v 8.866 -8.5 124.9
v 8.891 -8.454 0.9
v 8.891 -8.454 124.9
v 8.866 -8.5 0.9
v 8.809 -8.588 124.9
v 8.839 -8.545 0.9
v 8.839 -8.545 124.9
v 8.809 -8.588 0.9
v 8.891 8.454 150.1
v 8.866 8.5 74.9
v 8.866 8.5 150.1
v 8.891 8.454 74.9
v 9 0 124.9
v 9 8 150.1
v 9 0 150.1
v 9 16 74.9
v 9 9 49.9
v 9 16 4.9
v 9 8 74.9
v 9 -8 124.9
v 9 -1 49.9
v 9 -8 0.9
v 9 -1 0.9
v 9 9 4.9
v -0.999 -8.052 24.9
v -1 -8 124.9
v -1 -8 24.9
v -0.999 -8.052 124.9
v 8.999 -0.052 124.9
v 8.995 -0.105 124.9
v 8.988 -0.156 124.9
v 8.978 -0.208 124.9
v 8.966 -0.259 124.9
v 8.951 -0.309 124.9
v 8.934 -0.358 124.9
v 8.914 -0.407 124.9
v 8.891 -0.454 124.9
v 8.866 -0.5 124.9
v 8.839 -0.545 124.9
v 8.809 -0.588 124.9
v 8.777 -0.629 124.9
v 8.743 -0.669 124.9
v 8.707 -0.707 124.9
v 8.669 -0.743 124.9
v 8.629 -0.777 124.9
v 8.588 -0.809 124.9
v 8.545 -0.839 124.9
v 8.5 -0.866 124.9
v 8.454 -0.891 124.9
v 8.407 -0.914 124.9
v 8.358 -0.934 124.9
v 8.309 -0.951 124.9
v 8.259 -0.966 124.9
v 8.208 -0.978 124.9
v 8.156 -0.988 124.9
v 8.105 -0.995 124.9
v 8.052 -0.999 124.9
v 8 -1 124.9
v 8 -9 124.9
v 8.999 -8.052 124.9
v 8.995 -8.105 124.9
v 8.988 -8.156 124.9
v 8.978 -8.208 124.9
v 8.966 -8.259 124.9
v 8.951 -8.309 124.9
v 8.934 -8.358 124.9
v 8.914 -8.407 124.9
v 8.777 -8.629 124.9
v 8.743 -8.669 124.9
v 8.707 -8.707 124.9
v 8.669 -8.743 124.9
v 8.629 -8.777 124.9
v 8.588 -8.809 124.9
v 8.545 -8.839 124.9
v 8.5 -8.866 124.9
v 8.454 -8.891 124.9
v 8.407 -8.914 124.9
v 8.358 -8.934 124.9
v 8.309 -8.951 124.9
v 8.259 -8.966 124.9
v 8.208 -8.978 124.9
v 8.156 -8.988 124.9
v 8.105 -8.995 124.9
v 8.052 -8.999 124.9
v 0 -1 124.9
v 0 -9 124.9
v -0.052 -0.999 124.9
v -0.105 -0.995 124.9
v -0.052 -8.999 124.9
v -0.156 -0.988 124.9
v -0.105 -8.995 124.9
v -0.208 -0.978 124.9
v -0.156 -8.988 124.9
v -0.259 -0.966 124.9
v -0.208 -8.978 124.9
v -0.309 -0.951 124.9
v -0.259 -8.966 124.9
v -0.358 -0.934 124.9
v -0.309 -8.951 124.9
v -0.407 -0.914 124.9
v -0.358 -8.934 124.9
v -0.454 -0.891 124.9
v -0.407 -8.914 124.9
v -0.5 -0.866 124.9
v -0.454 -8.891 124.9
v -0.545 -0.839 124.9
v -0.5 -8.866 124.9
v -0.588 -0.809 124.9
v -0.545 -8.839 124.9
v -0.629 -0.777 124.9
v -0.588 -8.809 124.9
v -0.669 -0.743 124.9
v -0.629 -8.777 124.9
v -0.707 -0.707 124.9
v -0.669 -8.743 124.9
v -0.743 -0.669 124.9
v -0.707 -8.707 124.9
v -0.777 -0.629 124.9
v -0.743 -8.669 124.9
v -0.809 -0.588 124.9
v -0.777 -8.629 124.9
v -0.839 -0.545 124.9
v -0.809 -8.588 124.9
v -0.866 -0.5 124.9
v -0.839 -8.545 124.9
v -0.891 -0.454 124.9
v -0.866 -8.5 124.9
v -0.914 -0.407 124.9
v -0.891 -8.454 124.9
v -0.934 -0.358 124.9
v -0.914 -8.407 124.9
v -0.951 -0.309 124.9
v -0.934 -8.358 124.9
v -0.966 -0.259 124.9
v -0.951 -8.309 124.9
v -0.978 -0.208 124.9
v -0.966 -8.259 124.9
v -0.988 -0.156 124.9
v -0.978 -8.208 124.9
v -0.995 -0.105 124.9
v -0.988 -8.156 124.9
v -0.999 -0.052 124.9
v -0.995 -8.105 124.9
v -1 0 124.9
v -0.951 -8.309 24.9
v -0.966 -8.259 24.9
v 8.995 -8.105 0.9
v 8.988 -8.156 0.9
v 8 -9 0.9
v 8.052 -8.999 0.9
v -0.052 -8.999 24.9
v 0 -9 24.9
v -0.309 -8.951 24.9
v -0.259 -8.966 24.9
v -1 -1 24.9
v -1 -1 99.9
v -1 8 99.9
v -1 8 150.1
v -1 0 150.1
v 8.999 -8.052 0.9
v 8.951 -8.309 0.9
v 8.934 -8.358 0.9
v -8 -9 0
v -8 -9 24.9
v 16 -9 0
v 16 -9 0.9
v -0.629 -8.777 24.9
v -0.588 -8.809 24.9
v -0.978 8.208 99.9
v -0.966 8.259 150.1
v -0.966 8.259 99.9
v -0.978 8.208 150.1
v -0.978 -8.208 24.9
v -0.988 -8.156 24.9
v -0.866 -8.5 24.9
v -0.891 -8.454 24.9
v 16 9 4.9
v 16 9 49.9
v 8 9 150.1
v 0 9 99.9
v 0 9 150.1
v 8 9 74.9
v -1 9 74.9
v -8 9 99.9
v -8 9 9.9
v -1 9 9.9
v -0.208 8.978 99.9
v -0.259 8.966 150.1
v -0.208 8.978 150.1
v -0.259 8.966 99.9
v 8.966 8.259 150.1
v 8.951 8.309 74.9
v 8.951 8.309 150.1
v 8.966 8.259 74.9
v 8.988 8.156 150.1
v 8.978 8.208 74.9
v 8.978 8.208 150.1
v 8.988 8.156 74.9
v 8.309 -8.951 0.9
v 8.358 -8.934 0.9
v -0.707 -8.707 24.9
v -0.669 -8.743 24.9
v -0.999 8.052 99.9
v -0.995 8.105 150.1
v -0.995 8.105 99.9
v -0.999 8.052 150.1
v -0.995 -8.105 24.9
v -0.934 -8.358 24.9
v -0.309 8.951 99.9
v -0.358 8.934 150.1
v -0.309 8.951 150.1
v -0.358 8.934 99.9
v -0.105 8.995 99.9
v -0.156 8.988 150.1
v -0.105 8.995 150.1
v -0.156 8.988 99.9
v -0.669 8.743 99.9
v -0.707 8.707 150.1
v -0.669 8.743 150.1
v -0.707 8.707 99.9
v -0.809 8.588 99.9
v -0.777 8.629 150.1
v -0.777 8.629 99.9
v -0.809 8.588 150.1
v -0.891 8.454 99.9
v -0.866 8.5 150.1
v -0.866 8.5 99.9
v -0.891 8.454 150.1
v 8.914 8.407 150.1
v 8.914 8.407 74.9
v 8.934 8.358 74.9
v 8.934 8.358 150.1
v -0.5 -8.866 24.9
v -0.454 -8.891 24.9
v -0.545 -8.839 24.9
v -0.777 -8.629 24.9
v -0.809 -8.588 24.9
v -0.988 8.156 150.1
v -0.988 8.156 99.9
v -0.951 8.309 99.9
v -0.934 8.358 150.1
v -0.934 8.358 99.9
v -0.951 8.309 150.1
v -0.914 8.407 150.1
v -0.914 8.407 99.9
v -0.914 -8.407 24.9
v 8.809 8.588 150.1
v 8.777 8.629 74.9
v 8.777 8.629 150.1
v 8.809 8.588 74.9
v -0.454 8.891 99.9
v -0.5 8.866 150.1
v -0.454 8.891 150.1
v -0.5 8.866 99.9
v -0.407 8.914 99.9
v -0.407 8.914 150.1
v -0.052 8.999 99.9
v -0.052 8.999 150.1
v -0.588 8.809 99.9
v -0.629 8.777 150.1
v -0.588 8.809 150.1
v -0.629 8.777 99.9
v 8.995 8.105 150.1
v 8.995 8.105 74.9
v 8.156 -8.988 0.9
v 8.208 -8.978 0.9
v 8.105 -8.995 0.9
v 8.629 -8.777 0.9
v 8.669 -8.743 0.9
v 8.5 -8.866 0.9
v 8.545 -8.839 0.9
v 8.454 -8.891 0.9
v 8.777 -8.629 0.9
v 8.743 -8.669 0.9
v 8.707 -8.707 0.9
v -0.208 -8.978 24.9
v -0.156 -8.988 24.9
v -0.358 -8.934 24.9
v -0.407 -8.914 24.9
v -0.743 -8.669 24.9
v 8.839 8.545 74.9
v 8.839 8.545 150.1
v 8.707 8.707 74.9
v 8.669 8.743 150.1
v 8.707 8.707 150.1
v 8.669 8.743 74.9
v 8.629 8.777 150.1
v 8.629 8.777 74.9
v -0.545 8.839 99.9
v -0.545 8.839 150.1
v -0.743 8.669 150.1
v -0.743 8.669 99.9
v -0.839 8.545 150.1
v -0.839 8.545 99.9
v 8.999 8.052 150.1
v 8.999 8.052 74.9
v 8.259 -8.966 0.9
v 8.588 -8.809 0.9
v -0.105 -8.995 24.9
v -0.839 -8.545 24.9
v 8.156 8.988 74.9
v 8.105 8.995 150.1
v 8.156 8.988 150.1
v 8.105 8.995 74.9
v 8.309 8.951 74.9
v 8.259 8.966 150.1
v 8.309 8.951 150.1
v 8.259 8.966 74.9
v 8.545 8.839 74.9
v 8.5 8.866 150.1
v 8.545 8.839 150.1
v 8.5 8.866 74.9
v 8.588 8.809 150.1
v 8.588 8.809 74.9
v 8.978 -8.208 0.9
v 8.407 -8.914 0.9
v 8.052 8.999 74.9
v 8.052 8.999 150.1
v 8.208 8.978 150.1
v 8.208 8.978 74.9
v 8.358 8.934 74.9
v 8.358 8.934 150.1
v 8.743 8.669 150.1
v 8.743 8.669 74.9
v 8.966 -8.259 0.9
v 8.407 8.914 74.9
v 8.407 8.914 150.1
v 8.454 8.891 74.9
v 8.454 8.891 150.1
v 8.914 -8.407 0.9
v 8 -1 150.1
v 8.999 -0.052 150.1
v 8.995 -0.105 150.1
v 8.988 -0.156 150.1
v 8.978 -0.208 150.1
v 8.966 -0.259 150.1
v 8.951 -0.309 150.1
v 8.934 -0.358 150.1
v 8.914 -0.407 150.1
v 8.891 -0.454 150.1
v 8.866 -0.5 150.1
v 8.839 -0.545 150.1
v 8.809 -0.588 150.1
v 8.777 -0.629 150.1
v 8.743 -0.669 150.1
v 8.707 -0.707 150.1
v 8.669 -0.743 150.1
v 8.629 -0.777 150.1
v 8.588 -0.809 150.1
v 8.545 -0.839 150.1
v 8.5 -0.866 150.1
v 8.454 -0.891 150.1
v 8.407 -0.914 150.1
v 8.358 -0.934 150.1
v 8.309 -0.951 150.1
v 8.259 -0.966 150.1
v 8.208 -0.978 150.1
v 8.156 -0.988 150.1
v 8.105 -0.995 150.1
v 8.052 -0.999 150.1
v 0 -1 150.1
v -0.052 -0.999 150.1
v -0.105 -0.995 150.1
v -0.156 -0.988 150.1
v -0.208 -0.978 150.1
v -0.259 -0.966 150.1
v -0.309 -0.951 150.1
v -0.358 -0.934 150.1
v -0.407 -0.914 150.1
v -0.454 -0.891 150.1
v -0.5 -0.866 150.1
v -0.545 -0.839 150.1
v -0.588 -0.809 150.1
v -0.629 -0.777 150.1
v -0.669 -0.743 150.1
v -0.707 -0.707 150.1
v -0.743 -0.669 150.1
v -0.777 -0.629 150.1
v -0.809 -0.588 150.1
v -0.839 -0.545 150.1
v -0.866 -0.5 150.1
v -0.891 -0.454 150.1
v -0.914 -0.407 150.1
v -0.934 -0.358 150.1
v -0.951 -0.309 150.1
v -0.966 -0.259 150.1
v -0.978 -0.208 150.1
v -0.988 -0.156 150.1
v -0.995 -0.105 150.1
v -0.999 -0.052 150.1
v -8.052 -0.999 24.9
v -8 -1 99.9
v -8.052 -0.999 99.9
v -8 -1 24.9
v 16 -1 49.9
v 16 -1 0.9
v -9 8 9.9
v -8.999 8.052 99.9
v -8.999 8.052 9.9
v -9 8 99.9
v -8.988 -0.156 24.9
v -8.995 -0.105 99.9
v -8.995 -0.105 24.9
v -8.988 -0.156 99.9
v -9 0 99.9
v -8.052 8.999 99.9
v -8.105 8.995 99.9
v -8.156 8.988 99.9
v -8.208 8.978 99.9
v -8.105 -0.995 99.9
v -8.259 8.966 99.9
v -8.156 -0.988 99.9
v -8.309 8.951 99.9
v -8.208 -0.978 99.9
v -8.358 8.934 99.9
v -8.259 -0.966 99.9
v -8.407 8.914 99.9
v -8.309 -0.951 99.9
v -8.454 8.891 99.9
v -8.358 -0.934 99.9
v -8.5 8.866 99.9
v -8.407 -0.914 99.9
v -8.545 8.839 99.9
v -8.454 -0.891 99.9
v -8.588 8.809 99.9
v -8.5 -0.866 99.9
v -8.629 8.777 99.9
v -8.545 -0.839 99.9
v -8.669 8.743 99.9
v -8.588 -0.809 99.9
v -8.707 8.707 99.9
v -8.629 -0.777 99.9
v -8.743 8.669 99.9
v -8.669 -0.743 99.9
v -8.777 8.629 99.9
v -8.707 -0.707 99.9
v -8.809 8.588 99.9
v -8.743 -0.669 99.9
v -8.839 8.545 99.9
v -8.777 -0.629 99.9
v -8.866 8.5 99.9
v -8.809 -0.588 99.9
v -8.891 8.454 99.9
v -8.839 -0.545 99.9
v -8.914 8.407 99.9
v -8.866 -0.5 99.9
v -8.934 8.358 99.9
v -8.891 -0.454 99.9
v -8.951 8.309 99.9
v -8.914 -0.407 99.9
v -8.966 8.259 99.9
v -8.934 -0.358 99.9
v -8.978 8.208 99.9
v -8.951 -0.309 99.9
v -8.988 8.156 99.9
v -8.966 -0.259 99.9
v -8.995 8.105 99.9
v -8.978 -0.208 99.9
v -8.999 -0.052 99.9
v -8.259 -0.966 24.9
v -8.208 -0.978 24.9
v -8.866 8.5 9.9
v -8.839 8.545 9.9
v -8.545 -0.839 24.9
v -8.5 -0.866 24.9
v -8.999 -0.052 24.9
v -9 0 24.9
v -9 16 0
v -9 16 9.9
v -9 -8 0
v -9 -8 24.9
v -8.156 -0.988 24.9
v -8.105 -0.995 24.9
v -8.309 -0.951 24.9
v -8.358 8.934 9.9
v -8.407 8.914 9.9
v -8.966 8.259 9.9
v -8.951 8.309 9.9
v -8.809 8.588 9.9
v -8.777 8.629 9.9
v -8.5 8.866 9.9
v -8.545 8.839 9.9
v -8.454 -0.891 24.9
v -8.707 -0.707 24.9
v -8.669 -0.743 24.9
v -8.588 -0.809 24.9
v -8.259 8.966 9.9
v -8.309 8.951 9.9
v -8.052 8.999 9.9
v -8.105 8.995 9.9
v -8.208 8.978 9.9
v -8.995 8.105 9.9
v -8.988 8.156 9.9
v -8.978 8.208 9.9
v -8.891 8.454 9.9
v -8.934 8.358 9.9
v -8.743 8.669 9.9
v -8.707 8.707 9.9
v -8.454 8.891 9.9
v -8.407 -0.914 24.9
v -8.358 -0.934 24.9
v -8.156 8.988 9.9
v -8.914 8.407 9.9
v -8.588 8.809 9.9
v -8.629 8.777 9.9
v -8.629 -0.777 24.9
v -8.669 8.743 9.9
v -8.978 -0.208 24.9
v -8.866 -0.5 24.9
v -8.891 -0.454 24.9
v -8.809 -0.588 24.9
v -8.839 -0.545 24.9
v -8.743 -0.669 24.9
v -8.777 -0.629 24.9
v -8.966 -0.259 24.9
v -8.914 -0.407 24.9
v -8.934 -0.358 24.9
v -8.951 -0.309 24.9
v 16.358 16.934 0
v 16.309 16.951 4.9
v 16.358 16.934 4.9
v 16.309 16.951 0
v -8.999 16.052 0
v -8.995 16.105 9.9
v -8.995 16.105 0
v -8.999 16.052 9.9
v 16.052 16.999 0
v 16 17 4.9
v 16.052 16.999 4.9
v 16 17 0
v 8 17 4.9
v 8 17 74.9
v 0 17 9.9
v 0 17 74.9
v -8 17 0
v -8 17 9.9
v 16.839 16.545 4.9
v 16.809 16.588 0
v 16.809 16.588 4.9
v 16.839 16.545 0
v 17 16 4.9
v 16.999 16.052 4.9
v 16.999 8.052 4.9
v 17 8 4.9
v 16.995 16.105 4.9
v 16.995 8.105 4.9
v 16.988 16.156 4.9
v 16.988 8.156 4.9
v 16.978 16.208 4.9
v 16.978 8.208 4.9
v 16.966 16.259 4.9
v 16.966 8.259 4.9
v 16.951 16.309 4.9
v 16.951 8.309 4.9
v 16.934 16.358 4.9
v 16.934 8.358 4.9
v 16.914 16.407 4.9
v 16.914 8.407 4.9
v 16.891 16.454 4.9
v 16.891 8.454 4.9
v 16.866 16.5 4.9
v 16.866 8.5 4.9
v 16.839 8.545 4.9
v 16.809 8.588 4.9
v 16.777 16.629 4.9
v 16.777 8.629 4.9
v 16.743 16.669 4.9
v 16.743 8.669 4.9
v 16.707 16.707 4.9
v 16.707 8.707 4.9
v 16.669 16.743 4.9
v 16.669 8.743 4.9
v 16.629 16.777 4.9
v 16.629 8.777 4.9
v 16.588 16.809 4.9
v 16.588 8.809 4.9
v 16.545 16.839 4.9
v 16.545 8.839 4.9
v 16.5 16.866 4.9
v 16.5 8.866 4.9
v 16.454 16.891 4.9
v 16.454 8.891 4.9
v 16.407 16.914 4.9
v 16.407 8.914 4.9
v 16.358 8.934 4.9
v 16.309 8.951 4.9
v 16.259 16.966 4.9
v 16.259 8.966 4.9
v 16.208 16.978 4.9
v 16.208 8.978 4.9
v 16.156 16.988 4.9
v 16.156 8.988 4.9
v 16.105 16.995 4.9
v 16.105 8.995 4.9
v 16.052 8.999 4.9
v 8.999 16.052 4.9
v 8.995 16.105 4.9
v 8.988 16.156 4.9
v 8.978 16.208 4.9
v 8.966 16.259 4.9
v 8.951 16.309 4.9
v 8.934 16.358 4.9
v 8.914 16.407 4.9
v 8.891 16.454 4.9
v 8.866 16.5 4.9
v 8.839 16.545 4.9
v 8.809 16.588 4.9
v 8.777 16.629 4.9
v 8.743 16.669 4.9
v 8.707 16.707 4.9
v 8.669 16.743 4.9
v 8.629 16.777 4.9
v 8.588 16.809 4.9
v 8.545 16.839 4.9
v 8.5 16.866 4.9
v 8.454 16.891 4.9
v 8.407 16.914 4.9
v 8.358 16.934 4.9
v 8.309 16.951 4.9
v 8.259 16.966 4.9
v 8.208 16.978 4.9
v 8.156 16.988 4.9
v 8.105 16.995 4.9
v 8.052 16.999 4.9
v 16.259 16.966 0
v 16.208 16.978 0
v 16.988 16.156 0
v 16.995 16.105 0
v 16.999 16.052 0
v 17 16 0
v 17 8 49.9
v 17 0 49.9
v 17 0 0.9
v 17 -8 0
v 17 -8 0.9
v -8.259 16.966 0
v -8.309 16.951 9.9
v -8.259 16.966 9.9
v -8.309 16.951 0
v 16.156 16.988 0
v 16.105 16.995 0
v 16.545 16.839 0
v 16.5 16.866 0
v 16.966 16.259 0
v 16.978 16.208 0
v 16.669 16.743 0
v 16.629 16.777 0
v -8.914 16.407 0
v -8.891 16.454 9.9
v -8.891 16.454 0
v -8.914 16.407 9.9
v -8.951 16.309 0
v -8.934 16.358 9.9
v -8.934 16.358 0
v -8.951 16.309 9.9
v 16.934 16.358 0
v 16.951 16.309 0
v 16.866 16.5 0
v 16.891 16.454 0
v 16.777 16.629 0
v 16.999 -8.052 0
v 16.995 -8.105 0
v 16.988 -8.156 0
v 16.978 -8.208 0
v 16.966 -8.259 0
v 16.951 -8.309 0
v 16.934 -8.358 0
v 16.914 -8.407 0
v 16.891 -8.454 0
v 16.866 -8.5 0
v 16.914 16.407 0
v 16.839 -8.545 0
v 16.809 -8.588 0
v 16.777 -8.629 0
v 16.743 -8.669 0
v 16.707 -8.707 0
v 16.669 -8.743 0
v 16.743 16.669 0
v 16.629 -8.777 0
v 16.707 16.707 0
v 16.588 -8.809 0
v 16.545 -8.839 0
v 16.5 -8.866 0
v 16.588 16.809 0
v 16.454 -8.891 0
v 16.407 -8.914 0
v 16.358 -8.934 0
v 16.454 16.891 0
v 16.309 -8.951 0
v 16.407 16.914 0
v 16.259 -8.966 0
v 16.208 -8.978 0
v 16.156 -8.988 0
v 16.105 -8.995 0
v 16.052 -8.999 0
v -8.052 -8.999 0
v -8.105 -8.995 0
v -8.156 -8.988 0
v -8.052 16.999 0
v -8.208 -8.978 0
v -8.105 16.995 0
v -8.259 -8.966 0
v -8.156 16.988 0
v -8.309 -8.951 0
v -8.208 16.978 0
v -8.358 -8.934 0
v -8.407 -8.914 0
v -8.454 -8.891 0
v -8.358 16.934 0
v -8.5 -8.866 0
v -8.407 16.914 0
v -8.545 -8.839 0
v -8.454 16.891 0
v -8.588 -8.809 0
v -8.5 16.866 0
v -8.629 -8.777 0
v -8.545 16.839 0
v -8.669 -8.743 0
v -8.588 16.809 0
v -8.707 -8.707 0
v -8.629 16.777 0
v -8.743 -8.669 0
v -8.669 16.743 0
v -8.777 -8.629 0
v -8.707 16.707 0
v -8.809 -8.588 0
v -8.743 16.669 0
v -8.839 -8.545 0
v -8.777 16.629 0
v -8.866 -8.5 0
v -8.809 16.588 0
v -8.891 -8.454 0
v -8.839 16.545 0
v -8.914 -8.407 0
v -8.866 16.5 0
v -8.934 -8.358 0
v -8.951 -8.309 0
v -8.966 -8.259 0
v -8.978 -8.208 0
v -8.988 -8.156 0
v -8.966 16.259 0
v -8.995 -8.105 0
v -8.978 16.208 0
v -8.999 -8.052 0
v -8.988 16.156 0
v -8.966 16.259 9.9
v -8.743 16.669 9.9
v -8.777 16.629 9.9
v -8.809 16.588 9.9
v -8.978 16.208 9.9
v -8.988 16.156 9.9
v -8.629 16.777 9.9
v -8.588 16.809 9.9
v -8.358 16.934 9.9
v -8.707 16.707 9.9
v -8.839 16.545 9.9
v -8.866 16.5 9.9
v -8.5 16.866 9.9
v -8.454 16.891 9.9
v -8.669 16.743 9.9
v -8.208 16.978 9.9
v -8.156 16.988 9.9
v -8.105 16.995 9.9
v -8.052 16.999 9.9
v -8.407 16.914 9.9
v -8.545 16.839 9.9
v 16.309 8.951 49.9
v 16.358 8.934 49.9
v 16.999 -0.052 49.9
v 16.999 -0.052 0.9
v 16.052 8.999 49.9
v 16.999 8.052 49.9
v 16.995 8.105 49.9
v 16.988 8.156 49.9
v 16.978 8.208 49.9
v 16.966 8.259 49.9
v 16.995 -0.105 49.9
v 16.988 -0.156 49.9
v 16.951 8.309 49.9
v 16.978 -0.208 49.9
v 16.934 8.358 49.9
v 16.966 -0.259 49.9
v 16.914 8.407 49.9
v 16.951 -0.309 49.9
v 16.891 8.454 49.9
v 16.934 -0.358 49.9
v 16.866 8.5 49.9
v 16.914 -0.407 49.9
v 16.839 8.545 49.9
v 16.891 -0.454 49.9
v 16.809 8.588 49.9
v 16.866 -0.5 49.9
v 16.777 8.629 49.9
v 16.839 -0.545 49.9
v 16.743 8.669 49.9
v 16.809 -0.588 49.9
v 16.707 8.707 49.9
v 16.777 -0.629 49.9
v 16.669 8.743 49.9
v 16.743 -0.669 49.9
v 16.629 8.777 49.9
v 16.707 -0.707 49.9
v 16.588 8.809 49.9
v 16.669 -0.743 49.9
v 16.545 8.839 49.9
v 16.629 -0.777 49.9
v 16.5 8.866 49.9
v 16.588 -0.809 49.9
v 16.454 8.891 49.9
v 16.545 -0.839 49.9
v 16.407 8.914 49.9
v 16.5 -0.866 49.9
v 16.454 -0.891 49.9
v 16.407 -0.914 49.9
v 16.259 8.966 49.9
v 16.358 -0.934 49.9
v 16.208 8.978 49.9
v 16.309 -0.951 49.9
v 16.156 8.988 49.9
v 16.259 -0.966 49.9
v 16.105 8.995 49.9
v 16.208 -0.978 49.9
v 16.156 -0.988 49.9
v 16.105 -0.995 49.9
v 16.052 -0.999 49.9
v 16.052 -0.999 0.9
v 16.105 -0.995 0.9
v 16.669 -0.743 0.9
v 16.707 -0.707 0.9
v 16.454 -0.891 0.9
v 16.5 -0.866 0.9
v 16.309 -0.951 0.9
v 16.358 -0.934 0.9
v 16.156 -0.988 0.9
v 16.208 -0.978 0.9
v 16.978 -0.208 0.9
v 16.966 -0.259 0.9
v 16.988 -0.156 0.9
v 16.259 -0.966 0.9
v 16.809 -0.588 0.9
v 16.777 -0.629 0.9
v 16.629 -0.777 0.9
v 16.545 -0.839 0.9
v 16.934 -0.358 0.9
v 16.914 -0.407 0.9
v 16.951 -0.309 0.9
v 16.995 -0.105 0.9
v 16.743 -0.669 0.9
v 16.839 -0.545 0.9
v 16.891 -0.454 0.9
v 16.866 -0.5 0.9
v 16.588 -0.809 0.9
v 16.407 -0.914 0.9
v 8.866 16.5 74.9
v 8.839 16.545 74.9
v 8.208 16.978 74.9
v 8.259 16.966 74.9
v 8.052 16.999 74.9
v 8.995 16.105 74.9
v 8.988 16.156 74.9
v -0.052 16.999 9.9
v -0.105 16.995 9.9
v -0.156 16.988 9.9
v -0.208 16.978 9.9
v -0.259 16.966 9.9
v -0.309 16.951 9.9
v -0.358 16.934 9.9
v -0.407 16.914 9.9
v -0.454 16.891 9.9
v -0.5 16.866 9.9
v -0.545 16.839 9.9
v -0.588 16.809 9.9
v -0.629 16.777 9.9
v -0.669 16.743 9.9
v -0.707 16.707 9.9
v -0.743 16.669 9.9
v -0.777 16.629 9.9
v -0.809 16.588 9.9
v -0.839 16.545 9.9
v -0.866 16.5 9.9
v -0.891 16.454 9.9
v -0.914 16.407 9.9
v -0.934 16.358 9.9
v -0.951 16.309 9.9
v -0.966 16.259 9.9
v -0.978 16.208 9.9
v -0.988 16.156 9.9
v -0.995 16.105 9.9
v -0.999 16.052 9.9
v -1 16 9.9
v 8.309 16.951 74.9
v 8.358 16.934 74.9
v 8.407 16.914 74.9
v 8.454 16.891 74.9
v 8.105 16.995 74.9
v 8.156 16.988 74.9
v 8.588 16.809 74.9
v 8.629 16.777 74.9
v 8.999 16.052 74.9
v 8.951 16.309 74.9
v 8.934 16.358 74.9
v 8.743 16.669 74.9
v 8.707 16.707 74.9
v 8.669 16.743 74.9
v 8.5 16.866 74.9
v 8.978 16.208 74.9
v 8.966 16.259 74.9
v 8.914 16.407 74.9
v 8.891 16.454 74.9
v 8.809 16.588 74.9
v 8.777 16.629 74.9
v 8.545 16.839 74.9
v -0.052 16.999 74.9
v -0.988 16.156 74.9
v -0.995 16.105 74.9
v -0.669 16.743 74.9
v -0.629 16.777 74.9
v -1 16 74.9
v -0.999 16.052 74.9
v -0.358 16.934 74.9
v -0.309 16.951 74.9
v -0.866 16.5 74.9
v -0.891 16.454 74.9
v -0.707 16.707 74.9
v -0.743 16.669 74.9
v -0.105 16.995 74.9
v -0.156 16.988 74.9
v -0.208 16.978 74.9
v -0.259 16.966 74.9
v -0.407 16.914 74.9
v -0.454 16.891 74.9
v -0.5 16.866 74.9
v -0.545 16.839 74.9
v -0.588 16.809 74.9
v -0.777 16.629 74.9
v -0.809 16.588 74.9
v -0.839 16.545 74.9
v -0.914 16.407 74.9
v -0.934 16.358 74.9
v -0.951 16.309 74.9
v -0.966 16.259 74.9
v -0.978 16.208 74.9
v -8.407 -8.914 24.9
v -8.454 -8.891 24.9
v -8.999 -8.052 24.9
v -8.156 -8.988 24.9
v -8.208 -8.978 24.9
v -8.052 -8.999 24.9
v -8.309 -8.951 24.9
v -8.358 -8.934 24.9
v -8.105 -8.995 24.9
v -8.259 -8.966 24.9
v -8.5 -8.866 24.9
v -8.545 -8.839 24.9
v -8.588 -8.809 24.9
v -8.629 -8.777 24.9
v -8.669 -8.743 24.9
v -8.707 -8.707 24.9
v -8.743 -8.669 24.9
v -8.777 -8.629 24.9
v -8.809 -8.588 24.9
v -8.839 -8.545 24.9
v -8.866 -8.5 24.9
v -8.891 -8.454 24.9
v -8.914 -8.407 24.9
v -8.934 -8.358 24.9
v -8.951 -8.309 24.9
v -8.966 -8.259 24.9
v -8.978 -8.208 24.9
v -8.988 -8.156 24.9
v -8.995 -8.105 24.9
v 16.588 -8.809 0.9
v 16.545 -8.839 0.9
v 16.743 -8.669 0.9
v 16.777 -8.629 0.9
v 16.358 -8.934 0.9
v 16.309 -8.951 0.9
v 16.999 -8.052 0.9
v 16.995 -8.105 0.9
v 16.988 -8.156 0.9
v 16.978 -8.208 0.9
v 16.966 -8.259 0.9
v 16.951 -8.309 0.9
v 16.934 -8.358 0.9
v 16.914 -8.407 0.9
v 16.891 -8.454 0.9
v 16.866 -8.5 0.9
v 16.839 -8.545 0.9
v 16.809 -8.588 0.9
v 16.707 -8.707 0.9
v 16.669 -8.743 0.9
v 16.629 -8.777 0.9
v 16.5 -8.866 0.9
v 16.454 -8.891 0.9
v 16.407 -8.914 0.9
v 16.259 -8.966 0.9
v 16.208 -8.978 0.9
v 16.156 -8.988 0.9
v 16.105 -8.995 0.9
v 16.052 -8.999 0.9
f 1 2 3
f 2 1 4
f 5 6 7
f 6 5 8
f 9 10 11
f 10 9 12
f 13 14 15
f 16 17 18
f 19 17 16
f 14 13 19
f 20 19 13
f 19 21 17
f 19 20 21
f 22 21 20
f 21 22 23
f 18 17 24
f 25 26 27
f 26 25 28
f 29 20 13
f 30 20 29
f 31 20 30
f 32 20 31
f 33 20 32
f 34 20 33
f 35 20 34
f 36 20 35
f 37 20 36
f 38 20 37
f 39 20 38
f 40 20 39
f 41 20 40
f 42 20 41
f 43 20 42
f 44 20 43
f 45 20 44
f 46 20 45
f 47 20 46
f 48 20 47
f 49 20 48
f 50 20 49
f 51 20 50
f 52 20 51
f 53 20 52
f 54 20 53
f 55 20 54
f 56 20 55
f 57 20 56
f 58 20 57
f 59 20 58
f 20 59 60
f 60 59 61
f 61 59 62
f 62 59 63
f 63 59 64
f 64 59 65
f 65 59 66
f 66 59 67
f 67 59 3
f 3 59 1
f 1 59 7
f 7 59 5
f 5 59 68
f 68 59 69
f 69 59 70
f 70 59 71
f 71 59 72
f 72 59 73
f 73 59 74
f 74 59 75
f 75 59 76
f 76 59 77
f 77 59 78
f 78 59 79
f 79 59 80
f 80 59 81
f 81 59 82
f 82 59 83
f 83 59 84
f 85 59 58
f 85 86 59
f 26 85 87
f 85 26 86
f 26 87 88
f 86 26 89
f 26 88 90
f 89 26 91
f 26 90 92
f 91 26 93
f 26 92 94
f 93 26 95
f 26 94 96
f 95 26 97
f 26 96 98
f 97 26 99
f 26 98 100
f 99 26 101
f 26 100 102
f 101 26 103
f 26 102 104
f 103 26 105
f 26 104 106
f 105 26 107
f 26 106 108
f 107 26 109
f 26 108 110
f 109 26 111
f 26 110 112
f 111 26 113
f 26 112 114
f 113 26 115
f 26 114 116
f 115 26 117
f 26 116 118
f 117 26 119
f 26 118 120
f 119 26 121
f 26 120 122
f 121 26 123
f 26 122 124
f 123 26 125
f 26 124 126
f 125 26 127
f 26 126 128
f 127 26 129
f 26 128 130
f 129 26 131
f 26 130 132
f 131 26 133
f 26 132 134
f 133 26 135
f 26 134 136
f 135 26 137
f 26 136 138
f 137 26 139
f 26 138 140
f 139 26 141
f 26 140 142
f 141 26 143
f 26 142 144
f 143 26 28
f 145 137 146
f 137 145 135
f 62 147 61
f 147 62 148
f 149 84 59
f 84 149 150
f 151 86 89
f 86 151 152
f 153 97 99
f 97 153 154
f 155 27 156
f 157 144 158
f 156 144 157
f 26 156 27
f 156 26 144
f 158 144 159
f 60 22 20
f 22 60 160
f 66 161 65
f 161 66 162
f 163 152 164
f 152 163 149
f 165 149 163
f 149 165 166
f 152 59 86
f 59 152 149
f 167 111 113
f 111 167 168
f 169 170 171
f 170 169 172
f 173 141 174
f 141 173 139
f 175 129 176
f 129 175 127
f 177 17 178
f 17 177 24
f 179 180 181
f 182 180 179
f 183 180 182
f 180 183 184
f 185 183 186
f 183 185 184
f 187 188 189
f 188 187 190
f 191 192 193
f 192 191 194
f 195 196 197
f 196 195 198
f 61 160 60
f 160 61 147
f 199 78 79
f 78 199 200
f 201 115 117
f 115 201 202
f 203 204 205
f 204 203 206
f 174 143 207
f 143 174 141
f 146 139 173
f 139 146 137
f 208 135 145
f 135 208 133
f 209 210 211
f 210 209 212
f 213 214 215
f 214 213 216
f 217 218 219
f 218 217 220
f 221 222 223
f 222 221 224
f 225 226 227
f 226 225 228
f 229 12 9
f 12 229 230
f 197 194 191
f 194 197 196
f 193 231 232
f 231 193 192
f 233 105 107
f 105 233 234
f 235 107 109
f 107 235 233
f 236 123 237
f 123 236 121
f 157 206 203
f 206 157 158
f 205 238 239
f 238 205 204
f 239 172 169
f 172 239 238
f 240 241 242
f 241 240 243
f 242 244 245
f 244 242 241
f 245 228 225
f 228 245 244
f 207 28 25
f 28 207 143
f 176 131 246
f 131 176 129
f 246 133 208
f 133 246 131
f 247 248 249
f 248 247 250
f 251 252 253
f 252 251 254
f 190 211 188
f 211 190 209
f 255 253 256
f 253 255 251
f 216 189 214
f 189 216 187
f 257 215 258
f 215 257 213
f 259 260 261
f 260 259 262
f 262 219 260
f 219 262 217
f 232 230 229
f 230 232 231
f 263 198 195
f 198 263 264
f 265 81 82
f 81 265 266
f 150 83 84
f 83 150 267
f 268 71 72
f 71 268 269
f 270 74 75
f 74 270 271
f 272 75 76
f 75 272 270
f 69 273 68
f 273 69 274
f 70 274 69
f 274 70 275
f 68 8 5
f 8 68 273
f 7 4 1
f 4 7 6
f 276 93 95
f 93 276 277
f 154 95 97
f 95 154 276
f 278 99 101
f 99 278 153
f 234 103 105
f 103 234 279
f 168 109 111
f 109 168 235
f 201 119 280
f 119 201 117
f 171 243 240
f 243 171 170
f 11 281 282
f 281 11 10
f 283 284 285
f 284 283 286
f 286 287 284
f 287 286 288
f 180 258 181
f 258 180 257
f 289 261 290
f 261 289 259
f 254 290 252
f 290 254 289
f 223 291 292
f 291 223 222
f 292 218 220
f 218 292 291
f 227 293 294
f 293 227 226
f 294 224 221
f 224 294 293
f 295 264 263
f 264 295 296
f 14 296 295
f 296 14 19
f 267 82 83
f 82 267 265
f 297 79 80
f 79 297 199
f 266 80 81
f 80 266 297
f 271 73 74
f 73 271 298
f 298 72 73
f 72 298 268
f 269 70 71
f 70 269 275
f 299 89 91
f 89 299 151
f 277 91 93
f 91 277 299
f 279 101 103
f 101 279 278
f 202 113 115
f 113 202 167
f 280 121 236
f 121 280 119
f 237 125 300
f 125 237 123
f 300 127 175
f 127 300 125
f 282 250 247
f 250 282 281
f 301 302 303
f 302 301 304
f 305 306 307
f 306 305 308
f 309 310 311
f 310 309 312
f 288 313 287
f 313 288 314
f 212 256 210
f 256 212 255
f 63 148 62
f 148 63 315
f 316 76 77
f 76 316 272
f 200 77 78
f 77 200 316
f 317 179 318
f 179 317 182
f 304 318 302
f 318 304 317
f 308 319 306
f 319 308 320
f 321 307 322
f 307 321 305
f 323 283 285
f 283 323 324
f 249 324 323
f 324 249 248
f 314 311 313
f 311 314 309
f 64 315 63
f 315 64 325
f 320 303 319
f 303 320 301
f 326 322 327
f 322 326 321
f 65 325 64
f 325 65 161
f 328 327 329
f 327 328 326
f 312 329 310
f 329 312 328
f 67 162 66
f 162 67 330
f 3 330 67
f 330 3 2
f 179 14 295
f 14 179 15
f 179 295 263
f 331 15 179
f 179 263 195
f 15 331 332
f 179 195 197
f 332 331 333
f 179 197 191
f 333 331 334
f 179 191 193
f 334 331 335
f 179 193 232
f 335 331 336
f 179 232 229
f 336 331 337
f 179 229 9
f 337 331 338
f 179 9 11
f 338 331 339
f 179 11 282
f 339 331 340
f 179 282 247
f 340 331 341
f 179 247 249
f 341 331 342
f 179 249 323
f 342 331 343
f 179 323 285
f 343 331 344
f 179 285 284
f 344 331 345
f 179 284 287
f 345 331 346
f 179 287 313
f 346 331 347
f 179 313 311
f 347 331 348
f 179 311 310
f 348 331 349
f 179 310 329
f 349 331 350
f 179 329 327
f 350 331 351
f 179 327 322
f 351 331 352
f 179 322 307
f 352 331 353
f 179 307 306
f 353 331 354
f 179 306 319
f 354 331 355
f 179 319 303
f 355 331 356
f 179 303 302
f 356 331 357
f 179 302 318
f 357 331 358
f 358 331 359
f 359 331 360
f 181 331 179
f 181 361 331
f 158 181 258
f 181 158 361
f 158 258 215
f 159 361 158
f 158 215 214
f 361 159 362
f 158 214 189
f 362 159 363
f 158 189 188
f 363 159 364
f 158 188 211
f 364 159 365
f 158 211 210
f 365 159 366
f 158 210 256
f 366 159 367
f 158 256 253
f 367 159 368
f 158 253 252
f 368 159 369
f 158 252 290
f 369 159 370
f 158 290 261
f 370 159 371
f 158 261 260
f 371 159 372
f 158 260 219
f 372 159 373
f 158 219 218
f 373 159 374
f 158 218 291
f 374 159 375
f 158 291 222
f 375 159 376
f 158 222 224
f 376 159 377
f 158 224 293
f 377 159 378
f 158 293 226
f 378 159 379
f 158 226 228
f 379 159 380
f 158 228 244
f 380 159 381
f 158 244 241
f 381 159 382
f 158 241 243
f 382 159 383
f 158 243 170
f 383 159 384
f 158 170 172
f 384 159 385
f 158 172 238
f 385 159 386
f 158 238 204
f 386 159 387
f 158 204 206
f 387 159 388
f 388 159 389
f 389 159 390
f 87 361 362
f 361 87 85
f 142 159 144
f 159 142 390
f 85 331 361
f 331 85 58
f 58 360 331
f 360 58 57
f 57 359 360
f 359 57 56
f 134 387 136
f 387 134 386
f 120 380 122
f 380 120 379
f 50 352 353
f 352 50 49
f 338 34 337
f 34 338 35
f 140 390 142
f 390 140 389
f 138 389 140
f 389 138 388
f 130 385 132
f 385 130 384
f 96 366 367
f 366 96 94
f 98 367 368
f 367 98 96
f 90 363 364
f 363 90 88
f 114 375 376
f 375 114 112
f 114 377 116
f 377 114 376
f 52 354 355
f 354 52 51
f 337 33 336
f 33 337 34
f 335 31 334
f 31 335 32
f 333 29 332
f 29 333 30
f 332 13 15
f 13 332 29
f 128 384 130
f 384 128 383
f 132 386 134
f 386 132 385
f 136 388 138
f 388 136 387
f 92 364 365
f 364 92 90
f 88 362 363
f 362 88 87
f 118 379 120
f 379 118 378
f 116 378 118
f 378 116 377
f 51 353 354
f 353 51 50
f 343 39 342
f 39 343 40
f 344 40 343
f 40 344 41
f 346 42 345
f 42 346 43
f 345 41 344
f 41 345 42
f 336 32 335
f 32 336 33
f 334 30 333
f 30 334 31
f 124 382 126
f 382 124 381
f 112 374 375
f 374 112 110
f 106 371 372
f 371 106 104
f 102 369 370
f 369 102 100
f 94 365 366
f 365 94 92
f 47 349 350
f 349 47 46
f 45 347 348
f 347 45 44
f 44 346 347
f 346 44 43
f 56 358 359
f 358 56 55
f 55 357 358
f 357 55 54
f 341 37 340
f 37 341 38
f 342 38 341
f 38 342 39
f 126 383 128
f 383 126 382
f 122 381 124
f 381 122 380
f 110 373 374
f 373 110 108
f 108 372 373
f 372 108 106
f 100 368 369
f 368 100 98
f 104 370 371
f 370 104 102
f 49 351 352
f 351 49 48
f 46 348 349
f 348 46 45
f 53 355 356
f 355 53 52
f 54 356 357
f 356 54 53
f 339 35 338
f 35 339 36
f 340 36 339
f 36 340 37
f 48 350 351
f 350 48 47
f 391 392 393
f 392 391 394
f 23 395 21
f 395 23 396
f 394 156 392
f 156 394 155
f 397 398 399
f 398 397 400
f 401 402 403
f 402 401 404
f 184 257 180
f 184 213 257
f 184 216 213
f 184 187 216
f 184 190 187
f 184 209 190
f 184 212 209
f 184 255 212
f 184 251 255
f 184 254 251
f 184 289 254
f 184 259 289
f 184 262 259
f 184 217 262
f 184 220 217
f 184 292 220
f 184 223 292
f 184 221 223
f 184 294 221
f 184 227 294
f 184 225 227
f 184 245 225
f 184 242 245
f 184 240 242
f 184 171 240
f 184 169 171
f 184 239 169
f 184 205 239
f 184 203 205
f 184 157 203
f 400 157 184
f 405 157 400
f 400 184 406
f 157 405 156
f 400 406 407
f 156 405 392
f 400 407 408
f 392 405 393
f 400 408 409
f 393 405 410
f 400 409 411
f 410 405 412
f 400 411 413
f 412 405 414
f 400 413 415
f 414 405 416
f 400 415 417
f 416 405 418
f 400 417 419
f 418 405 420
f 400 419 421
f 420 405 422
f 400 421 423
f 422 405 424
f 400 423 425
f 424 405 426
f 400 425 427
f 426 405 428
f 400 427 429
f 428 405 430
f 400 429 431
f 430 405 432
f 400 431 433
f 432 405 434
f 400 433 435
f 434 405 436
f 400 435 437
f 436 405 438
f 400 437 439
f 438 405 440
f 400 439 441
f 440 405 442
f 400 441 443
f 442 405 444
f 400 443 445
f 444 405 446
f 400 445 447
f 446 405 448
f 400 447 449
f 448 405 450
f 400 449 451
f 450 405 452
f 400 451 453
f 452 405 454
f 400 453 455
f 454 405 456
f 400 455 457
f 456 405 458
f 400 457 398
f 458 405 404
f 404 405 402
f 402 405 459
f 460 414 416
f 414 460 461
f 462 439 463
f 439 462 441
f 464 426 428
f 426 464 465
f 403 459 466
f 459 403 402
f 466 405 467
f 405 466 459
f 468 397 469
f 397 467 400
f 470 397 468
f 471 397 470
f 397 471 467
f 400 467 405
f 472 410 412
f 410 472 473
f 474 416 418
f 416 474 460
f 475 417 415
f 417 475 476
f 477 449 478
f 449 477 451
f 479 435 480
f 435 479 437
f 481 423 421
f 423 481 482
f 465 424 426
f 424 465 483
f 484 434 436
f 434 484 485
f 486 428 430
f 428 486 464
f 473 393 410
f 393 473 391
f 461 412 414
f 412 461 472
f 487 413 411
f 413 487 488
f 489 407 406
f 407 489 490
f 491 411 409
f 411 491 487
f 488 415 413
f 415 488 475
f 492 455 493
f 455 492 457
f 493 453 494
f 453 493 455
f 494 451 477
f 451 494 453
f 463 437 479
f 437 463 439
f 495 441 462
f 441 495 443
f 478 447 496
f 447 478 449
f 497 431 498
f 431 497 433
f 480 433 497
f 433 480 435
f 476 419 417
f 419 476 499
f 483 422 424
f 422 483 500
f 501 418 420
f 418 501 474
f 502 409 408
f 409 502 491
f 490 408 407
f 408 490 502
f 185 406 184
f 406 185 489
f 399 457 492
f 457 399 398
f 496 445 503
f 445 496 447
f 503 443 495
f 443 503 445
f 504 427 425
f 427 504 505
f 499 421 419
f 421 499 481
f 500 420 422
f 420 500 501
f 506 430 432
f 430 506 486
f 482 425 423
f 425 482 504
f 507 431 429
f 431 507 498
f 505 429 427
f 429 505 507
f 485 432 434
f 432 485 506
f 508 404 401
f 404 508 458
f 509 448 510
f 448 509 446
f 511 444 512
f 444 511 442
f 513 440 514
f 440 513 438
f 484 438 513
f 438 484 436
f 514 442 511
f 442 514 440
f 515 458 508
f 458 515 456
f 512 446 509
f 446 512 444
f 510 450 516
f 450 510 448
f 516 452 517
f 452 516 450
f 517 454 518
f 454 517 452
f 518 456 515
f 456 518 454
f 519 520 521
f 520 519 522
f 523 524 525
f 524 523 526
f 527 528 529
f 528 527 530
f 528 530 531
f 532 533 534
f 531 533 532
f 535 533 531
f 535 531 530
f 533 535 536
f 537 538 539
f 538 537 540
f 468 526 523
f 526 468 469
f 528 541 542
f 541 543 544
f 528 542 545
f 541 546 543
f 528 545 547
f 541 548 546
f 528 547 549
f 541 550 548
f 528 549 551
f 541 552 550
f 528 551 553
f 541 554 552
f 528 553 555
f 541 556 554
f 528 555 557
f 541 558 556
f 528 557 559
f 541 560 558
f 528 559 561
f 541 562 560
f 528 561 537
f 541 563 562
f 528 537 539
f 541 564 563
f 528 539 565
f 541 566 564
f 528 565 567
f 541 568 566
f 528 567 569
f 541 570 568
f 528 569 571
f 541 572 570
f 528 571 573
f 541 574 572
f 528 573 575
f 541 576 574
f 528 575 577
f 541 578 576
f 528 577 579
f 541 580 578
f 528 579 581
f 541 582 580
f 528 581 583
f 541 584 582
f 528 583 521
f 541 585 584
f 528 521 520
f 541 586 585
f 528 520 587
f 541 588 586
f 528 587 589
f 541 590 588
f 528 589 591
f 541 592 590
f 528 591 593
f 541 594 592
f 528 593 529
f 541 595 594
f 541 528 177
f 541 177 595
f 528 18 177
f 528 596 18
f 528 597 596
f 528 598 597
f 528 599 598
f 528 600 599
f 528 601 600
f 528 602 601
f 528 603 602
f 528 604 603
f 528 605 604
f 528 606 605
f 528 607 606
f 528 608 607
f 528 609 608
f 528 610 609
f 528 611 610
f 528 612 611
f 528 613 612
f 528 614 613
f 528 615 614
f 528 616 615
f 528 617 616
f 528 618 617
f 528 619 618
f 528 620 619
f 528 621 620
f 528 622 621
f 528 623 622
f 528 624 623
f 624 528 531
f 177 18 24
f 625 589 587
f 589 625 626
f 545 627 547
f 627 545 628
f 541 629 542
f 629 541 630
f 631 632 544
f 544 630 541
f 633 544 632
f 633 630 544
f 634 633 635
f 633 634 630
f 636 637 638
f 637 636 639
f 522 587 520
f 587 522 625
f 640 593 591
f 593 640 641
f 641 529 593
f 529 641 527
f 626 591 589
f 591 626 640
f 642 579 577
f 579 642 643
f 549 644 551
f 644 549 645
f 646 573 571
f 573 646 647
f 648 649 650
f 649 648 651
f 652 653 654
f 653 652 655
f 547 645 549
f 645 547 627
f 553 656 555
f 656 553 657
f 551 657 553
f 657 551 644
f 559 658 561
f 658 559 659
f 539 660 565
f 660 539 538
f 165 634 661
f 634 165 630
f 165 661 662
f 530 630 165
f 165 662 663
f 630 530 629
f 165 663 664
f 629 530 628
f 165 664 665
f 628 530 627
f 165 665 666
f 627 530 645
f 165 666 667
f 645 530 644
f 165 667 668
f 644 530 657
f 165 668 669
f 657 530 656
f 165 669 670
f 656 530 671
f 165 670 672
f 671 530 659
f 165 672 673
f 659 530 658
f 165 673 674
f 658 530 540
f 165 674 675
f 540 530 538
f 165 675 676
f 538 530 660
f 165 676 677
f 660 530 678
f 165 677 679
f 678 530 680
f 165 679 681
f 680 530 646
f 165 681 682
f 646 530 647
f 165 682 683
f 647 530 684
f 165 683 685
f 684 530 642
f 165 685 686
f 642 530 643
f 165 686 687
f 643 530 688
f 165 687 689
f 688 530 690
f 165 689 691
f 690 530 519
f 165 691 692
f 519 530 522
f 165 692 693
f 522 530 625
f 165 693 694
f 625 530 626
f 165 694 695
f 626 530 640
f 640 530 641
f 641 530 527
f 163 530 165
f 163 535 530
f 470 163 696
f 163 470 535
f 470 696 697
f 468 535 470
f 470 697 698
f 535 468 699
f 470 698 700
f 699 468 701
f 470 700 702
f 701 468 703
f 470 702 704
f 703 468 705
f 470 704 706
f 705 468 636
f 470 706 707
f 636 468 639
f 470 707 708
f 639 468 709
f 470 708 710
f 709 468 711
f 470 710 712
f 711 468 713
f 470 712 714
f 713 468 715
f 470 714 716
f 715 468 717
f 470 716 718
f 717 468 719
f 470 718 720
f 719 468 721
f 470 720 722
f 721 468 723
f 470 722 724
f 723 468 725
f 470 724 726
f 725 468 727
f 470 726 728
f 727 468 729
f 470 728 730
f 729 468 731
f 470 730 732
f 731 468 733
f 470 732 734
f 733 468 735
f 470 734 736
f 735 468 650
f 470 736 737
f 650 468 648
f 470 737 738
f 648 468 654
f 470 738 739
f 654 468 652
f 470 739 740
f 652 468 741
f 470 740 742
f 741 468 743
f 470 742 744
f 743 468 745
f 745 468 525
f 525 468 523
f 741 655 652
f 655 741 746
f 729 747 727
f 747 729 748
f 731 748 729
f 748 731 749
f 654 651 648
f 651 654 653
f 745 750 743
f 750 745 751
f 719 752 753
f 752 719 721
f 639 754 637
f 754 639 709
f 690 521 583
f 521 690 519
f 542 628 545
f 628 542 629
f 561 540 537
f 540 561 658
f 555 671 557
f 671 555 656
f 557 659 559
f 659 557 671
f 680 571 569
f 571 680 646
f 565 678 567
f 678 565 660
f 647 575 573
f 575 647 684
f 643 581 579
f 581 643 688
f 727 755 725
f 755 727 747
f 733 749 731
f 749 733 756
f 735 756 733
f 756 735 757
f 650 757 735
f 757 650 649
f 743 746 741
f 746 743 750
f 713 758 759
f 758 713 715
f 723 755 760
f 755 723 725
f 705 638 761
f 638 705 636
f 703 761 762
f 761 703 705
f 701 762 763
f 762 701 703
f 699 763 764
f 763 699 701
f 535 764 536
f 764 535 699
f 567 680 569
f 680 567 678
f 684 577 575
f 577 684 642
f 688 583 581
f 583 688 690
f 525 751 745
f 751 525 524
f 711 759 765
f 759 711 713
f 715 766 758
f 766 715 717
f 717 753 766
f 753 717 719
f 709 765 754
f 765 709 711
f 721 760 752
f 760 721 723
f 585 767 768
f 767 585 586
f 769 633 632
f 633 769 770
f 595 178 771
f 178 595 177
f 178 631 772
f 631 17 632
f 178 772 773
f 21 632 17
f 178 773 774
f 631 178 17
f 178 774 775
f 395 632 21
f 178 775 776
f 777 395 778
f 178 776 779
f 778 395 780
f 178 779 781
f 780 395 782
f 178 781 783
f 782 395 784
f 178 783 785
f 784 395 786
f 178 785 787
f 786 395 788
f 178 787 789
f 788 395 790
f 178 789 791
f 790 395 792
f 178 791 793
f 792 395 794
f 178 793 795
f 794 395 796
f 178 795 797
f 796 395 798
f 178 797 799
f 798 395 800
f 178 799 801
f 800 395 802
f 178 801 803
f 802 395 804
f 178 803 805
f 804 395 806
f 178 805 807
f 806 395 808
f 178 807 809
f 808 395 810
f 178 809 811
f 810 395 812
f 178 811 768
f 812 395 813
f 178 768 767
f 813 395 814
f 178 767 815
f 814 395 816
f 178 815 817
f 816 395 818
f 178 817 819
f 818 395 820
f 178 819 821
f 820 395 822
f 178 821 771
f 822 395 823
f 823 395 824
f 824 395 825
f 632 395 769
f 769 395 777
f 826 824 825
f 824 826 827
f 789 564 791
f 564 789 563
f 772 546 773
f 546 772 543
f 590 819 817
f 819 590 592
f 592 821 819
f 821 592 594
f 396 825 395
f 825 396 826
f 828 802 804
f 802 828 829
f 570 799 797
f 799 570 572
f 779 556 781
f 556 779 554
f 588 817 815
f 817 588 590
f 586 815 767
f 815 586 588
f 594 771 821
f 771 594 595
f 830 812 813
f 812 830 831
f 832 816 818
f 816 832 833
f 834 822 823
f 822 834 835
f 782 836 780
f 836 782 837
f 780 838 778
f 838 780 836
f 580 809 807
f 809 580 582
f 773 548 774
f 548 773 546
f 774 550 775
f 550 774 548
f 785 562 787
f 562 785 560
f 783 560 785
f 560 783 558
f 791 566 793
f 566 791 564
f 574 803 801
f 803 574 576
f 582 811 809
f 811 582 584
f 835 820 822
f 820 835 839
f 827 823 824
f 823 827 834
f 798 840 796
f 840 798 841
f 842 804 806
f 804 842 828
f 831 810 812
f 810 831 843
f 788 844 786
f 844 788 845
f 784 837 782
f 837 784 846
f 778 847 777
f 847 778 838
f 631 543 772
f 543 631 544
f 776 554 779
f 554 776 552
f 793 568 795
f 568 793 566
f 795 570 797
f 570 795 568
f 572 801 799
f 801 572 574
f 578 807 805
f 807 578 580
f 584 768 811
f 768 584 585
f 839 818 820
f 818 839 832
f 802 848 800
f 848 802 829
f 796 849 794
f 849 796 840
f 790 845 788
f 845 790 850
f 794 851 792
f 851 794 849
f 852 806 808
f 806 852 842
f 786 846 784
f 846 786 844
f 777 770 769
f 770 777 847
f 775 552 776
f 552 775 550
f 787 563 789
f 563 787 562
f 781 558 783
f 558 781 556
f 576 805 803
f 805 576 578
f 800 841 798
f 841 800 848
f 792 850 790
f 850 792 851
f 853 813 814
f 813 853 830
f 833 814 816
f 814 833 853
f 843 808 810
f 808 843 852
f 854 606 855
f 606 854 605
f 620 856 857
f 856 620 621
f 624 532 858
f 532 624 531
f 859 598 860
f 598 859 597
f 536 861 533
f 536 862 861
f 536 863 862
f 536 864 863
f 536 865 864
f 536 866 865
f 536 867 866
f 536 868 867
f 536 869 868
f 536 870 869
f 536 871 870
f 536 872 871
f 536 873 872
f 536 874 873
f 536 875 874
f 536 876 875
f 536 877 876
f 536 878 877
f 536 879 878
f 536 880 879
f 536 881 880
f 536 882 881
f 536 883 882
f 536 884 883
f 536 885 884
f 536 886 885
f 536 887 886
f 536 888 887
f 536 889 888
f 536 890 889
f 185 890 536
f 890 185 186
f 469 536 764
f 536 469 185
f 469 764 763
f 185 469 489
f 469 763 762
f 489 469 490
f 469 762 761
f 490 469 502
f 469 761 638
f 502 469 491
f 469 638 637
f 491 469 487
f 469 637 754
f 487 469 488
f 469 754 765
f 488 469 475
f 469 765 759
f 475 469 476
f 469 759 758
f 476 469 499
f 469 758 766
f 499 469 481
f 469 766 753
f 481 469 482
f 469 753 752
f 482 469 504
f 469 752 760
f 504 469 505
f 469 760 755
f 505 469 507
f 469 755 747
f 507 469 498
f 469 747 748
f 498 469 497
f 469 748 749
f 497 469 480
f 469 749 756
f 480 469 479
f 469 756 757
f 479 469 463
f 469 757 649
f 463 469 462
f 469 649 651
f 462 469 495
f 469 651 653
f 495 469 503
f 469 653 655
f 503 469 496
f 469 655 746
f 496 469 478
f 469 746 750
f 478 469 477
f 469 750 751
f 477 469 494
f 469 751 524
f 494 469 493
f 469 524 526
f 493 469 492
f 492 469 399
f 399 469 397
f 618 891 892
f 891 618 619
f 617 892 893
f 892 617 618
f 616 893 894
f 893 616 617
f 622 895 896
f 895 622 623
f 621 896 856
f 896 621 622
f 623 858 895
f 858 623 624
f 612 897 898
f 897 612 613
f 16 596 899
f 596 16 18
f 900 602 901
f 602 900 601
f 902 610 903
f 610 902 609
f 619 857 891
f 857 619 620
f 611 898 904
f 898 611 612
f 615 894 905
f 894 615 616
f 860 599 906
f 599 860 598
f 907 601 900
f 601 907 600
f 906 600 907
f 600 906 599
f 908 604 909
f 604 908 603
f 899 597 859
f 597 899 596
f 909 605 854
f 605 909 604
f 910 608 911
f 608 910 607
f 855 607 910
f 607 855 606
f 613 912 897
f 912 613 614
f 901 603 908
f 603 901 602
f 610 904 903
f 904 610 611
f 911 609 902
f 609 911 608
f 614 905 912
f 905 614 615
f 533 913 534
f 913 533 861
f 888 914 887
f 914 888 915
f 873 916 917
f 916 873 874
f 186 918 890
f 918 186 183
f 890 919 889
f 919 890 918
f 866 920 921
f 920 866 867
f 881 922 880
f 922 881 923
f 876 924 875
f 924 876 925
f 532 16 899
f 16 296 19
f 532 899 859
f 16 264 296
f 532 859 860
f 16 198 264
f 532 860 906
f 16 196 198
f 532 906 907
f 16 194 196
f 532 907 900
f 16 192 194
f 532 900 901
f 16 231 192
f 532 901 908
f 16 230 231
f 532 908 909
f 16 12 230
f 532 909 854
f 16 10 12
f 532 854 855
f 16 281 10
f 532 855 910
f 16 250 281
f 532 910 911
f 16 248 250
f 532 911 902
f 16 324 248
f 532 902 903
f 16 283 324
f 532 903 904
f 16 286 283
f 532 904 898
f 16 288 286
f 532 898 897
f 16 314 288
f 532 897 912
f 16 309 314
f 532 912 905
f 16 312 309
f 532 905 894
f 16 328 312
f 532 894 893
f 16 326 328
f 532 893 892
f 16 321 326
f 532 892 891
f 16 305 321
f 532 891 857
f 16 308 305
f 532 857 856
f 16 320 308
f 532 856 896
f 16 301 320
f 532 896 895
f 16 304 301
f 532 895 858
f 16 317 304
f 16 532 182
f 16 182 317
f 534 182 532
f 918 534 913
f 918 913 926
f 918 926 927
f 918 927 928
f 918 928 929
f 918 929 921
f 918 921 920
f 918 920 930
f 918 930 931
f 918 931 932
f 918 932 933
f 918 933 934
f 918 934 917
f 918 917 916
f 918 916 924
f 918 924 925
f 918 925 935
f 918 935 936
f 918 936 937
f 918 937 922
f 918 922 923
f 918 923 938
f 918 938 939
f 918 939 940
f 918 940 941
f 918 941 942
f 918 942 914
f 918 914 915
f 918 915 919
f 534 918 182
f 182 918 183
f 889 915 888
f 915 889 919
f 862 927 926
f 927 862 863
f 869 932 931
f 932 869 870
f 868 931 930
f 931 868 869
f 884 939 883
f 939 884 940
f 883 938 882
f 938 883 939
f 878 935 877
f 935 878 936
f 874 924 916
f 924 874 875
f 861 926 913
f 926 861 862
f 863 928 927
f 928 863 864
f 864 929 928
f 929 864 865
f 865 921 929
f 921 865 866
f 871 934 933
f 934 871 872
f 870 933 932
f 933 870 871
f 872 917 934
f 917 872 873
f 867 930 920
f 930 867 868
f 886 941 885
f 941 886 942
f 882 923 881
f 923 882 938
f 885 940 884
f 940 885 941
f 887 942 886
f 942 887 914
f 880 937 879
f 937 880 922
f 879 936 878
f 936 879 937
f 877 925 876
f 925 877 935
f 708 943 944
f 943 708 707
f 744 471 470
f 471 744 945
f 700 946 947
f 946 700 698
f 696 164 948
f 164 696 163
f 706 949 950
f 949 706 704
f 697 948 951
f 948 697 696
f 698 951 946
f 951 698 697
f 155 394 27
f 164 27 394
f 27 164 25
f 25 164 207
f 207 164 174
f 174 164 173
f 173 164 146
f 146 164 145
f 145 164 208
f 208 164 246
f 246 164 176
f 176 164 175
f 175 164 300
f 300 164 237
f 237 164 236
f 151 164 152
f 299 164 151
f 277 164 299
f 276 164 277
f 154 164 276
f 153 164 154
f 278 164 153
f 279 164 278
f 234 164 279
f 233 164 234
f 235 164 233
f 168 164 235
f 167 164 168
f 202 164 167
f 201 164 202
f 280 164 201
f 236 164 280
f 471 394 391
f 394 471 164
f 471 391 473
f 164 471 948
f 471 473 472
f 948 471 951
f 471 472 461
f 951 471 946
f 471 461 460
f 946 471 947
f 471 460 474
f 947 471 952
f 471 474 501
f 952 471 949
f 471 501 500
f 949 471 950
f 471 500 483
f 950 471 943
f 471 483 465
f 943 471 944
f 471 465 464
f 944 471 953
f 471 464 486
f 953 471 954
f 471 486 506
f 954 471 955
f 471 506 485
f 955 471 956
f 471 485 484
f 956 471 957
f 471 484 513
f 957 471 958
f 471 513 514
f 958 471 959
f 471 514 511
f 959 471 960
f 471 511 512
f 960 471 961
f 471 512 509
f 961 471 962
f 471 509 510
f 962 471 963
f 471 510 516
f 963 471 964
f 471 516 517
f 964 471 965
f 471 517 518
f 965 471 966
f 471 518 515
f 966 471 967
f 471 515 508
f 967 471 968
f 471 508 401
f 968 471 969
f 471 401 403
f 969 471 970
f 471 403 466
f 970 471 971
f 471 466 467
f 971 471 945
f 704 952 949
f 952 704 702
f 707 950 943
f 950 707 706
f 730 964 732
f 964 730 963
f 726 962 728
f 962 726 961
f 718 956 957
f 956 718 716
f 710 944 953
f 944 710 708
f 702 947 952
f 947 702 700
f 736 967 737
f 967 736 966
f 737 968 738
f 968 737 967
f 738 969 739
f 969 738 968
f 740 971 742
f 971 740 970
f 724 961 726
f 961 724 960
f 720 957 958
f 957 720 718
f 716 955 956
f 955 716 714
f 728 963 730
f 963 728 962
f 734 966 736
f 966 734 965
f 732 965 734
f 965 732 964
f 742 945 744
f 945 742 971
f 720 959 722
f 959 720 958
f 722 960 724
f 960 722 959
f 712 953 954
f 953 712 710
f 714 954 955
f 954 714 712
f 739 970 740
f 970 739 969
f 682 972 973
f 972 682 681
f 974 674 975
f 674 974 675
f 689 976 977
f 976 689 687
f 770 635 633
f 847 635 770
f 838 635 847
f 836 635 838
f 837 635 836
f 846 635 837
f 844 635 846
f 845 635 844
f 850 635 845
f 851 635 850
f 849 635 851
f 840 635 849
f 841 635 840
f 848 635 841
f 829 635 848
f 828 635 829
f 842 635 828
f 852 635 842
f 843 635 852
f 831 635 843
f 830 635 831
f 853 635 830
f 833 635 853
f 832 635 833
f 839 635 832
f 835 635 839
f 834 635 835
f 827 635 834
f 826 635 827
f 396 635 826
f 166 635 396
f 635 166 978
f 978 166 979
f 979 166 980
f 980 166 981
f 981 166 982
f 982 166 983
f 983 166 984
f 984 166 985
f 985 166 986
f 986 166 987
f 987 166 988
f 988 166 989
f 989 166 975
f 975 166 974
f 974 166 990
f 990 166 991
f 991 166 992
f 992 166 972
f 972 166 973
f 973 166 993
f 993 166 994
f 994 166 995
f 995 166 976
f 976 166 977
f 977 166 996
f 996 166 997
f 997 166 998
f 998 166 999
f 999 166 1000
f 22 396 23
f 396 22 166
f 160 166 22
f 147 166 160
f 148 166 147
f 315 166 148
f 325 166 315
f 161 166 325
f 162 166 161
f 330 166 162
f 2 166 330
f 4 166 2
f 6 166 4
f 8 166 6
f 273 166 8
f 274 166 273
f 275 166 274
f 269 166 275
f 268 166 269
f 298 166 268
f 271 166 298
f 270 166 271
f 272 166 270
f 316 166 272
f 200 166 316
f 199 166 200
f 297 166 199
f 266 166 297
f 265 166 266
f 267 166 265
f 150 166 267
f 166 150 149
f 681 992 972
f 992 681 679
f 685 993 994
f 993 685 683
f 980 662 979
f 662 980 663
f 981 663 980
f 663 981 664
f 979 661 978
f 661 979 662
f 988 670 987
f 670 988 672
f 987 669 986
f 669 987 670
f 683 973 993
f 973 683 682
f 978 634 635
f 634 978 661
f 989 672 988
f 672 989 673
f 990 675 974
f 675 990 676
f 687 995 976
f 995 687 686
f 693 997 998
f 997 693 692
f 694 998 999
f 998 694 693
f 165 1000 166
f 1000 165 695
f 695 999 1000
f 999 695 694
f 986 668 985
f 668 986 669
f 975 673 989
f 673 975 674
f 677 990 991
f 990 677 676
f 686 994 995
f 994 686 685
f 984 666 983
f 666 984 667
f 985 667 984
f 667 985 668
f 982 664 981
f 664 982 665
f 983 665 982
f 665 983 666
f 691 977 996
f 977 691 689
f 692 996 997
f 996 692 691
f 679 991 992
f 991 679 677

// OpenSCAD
//------------------------------------------------------
// XY calibration test
// Simple Calibration Z Axis
// 5@xes 16/11/2021
//------------------------------------------------------

$fn=120;


// 150mm x 150mm ; 10mm steps
lg_x = 15;
lg_y = 15;

height = 4.8;
height2 = 7.8;
letter_height = 5.2;
letter_size =8;

dec =8;

minkowski()
{
    union() {
    translate([dec,dec,0]) cube(size =[8,8,4.8], center =false);
    translate([-dec,dec,0]) cube(size =[8,8,9.8], center =false);
    translate([-dec,-dec,0]) cube(size =[8,8,24.8], center =false);
    translate([dec,-dec,0]) cube(size =[8,8,0.8], center =false);
    
    translate([0,dec,0]) cube(size =[8,8,74.8], center =false);     
    translate([dec,0,0]) cube(size =[8,8,49.8], center =false);    
    cube(size =[8,8,150], center =false);
    translate([-dec,0,0]) cube(size =[8,8,99.8], center =false); 
    translate([0,-dec,0]) cube(size =[8,8,124.8], center =false);    
}
  cylinder(r=1,h=0.1);
}


                
